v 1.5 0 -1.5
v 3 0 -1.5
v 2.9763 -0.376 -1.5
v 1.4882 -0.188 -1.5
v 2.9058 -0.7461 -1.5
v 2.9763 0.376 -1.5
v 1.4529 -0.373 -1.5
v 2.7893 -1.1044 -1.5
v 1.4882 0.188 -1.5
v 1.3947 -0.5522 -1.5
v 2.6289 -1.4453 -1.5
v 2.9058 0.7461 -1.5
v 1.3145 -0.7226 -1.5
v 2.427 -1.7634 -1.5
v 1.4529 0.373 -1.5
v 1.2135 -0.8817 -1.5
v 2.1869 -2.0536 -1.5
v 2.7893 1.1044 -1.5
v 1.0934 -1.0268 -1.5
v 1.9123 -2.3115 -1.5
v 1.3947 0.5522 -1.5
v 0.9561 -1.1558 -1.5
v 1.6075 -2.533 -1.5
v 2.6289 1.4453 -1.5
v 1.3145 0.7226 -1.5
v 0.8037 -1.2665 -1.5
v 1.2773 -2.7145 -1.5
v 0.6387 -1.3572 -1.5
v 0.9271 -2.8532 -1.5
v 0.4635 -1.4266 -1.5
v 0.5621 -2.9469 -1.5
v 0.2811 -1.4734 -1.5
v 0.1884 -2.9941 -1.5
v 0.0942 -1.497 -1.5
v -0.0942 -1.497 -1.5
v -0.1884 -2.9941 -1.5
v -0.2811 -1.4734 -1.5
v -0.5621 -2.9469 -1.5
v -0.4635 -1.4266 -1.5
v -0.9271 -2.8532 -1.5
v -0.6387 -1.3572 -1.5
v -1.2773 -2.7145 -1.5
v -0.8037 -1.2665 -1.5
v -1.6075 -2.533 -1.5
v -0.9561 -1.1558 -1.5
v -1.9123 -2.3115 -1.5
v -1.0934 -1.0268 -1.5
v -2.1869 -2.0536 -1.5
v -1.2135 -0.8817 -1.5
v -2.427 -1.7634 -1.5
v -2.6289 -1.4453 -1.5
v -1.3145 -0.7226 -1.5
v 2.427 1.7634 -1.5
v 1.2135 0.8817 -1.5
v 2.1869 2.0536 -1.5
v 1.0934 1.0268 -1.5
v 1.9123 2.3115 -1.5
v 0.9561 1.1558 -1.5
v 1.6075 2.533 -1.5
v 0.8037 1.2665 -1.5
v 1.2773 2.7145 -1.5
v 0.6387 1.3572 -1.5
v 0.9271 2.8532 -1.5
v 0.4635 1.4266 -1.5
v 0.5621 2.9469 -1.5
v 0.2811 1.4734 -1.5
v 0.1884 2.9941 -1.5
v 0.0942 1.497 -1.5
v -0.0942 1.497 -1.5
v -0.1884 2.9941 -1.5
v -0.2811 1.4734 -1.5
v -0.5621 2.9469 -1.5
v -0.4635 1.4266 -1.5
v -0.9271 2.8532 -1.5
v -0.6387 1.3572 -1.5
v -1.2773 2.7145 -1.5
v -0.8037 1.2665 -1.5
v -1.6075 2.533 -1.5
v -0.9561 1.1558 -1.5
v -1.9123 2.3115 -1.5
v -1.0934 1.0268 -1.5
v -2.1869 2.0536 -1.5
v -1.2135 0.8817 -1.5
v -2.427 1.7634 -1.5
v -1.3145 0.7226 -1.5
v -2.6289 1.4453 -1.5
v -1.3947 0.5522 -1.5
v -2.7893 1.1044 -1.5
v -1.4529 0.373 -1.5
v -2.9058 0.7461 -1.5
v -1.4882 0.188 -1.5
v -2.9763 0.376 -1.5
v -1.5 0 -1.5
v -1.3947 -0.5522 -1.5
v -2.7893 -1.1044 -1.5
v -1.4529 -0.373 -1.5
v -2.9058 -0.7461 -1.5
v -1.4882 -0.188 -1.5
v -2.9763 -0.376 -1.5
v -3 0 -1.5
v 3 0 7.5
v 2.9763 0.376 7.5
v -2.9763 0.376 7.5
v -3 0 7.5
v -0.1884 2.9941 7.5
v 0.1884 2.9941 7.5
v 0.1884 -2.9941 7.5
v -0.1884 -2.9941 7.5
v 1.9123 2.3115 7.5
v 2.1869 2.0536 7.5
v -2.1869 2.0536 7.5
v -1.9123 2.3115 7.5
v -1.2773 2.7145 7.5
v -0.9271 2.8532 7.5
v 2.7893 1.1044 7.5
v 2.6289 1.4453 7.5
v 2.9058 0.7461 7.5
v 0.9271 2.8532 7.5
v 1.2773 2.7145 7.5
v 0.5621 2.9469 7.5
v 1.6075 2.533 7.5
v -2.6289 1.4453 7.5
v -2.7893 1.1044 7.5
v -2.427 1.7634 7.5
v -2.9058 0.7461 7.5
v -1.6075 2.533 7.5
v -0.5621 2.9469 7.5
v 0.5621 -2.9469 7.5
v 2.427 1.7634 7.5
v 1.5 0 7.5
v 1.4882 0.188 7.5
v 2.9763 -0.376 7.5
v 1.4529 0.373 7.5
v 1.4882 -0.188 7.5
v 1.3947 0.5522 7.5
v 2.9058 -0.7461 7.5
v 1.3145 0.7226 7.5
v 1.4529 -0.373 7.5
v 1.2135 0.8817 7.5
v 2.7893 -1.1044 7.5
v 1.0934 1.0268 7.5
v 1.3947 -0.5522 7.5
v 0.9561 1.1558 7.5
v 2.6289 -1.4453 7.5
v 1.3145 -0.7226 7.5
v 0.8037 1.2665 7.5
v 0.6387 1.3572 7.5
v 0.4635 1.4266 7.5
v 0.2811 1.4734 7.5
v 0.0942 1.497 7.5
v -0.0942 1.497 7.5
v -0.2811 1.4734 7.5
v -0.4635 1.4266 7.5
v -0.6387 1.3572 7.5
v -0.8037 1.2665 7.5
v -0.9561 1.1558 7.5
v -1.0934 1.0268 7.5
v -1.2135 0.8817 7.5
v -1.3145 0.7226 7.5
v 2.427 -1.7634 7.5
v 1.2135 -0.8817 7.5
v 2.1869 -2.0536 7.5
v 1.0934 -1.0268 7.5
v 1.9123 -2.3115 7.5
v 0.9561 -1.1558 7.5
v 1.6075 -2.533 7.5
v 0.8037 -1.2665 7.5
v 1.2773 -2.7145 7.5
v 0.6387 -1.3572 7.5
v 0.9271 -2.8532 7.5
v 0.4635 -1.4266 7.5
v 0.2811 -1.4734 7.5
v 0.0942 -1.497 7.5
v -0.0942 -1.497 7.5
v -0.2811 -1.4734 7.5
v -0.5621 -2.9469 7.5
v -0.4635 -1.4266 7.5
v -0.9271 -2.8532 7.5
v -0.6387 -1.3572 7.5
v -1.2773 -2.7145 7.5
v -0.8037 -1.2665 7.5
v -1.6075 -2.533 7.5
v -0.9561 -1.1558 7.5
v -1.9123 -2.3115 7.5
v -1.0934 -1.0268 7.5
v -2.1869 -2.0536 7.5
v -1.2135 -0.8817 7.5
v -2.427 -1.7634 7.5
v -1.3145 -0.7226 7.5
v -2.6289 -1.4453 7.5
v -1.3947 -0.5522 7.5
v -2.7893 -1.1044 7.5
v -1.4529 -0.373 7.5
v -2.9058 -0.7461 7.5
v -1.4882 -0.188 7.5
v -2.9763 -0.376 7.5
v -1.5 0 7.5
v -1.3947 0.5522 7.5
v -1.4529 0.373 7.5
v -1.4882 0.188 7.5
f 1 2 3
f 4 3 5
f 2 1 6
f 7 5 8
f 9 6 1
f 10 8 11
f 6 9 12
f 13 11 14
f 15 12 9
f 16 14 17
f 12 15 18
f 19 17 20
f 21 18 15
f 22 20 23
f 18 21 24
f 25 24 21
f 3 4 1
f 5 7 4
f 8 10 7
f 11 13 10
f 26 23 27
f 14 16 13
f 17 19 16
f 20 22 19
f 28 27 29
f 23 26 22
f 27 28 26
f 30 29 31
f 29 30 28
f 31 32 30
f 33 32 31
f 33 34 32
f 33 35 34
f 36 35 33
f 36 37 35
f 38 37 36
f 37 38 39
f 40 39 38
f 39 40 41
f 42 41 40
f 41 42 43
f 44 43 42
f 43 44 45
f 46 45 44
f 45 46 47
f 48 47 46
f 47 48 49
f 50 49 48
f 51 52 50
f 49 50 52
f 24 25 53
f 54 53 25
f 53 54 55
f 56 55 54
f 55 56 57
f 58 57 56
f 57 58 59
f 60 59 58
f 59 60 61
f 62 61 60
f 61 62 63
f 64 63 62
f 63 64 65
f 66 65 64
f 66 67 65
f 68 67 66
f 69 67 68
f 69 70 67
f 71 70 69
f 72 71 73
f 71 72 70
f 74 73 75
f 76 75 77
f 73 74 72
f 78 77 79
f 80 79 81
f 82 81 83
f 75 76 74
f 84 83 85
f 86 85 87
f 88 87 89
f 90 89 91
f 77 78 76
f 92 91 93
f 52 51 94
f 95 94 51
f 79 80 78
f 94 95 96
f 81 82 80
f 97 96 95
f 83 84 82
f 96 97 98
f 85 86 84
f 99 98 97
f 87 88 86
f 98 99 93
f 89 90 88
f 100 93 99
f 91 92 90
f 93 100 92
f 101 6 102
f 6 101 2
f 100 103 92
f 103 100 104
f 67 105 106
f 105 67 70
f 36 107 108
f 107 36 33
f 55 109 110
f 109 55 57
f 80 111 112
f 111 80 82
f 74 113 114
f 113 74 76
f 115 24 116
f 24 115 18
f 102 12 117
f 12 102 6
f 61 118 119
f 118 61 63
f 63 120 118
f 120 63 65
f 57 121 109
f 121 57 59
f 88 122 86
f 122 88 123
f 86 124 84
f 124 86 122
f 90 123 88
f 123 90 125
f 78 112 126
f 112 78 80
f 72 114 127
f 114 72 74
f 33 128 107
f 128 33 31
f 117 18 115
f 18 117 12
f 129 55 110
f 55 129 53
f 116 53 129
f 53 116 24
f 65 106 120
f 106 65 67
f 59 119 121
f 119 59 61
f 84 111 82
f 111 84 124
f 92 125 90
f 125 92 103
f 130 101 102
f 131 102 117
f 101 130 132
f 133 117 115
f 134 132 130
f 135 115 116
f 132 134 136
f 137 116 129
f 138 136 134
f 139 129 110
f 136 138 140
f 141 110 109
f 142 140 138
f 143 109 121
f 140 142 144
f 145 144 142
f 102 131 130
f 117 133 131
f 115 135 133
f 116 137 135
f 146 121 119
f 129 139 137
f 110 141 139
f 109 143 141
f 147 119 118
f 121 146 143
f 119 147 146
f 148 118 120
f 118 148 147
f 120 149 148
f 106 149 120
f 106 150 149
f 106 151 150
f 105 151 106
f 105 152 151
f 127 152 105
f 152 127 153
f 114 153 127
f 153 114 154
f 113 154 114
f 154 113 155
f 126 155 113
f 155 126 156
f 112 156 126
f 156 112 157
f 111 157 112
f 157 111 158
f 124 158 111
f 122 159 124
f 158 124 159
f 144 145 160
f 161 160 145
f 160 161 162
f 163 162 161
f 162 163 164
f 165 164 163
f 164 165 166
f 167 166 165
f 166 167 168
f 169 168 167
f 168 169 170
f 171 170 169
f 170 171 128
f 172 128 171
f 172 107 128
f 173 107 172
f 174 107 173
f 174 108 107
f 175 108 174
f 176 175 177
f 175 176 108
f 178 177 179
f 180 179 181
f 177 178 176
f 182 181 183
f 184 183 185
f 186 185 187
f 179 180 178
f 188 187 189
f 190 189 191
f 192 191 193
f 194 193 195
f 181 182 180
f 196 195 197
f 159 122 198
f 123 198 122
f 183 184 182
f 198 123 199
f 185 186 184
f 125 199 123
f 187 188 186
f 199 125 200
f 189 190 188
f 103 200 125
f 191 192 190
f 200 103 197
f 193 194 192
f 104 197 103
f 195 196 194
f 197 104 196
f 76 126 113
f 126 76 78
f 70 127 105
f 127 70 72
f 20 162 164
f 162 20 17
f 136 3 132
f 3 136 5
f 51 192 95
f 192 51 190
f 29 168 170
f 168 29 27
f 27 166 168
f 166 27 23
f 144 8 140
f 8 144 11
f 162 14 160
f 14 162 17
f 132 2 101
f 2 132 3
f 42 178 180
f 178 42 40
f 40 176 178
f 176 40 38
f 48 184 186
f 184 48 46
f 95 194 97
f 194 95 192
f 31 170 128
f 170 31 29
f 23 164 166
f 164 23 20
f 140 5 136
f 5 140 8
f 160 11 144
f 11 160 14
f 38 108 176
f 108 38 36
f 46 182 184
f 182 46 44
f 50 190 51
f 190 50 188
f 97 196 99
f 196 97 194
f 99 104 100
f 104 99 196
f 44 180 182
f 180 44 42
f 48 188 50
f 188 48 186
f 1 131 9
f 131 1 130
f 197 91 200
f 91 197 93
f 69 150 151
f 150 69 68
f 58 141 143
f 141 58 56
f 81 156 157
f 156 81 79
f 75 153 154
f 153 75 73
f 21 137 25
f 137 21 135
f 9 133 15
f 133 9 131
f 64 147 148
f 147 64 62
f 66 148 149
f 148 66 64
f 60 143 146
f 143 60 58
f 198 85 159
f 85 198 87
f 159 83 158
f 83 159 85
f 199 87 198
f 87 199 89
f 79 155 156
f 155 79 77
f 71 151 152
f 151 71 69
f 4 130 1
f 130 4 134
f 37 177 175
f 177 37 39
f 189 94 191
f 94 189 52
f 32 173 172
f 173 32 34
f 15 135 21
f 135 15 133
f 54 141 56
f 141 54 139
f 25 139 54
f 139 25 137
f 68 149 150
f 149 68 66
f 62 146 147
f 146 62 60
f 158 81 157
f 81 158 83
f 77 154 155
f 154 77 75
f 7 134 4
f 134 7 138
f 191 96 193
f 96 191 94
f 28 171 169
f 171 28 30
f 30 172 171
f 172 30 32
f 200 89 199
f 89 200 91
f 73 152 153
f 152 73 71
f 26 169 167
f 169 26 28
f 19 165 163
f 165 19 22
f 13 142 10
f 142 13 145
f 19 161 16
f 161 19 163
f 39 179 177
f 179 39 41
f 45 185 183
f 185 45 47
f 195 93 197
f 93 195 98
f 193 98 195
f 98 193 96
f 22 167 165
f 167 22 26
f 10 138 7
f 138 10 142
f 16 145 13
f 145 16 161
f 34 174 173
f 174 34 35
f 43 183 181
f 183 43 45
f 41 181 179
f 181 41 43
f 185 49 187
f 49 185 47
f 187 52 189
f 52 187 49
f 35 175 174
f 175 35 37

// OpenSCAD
$fn = 50;


difference() {
	union() {
		translate(v = [0, 0, -1.5000000000]) {
			cylinder(h = 3, r = 1.0000000000);
		}
		translate(v = [0, 0, -1.5000000000]) {
			cylinder(h = 9, r = 3.0000000000);
		}
	}
	union() {
		translate(v = [0, 0, -100.0000000000]) {
			cylinder(h = 200, r = 1.5000000000);
		}
	}
}
